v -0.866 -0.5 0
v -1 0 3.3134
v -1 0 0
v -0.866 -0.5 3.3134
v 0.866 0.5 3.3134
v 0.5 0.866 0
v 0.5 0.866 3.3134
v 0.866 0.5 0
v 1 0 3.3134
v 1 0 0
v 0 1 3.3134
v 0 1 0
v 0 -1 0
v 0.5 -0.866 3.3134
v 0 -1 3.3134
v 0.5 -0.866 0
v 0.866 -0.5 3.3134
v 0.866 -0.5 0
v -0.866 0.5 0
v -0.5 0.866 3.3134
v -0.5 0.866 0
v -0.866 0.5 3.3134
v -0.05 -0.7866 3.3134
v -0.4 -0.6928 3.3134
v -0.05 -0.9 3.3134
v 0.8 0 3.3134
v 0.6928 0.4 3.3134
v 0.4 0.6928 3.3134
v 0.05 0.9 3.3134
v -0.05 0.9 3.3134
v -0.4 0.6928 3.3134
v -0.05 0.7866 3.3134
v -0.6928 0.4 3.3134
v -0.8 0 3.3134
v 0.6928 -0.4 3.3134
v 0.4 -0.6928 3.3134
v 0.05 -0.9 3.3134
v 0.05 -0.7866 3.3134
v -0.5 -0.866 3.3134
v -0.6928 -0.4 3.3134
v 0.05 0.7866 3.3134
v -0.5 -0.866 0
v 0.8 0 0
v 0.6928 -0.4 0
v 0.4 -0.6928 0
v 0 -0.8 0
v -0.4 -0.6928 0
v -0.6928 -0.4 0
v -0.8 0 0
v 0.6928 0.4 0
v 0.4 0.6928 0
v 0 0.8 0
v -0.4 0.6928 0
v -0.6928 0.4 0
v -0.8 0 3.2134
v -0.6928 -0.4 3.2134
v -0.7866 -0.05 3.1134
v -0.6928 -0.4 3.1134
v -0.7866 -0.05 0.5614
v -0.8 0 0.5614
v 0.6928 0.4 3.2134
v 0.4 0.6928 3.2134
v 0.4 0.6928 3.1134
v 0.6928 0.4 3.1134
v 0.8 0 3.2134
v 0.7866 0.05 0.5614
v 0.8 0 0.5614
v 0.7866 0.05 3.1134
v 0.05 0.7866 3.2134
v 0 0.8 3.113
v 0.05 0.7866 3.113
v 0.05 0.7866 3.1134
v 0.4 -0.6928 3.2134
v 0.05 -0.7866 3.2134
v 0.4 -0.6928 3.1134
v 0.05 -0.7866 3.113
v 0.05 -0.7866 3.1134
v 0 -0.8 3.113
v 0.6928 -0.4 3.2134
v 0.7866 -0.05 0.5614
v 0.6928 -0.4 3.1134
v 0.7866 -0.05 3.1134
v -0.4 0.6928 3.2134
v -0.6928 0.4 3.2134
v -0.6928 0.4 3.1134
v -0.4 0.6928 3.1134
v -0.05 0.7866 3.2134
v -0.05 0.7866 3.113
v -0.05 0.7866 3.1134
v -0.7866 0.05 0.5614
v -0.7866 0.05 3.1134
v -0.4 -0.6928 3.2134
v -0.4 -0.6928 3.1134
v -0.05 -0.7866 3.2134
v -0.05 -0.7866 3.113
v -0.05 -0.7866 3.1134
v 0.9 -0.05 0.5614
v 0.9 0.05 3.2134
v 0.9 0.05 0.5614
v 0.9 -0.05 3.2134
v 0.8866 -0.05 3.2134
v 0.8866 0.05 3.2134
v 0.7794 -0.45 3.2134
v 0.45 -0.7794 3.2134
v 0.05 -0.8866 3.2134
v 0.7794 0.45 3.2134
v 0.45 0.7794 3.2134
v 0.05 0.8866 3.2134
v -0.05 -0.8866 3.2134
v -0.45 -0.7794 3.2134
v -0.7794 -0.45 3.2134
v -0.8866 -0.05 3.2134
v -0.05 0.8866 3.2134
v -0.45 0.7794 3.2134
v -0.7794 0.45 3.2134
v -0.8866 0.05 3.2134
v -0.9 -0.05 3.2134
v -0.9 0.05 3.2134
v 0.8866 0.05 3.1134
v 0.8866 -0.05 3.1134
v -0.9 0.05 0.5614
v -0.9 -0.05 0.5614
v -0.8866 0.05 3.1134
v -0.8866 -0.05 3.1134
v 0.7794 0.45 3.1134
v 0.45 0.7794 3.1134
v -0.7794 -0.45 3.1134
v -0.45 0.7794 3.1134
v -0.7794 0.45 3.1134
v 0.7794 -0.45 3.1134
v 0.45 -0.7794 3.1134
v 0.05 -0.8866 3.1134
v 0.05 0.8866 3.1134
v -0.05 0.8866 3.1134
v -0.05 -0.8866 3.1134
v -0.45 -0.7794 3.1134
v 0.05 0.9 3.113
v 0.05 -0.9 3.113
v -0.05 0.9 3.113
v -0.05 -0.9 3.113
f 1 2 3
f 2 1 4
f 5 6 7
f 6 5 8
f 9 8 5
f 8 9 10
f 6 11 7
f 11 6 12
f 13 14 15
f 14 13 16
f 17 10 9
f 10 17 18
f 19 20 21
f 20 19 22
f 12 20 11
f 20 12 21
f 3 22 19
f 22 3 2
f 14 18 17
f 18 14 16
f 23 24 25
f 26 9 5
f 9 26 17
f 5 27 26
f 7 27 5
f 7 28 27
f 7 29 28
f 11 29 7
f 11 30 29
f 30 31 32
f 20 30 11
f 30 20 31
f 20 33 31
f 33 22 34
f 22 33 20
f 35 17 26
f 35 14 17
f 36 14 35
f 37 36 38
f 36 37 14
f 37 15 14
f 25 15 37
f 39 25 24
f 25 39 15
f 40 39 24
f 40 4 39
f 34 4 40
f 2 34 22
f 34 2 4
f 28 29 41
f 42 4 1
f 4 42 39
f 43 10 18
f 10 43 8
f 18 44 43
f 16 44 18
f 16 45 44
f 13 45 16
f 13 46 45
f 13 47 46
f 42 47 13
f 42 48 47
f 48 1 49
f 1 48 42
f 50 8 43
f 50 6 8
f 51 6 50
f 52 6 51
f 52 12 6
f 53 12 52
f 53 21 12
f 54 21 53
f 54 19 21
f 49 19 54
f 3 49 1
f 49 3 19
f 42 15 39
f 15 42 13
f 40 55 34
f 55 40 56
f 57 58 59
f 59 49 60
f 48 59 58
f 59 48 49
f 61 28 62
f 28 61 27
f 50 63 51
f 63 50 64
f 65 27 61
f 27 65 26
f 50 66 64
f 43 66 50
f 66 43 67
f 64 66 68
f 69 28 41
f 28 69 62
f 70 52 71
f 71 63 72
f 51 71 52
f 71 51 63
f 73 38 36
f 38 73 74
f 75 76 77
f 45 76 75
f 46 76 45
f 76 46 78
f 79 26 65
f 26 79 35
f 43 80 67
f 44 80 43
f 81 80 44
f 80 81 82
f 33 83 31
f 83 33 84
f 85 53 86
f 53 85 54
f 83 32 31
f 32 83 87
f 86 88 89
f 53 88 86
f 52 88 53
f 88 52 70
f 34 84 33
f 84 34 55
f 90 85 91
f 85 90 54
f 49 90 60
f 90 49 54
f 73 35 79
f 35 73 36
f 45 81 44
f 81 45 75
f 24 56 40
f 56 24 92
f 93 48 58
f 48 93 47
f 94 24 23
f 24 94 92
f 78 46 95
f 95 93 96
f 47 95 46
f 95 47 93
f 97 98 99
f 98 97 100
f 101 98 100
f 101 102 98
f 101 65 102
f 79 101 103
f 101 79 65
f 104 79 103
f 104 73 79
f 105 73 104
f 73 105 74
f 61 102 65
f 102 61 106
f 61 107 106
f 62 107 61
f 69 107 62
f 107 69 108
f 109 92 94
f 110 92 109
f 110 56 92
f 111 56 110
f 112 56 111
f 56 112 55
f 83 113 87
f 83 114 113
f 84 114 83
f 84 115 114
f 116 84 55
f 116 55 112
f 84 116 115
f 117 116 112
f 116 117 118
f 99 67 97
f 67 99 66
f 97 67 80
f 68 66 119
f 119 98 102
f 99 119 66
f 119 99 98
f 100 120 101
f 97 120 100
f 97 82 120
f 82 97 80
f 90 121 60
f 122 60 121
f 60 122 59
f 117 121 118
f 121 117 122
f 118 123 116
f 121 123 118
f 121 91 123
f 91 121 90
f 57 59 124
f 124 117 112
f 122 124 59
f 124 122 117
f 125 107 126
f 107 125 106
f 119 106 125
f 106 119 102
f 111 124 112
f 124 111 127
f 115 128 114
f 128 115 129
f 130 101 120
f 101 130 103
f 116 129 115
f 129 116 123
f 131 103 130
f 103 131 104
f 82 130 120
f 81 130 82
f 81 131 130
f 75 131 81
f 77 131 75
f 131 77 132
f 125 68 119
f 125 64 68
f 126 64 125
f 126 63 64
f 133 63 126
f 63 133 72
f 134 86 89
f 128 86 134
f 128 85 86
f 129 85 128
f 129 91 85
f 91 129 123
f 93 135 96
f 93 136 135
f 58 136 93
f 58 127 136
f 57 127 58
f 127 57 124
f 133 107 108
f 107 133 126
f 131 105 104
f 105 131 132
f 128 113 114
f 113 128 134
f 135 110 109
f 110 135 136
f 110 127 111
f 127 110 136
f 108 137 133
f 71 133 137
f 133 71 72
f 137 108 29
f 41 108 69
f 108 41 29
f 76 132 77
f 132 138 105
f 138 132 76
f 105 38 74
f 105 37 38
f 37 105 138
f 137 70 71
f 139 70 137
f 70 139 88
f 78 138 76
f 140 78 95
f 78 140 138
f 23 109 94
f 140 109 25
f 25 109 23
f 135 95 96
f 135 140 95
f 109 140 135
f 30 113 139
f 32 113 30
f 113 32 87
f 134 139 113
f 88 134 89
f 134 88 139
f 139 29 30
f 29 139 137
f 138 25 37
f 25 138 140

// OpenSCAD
tolerance=0.075;
hole_radius=0.05;
grid_hole_radius=0.05;
outer_radius=1;
thickness=0.2;
hole_attach_height=0.05;
compressed_height=3.3134;
extended_height=5.8654;
next_hole_radius=0.05;
next_hole_attach_height=0.05;
next_inner=0.8;
hole_twist=89.9964;
//other params
eps = tolerance/100;
rail_attach_height = grid_hole_radius + hole_attach_height;
inner_radius = outer_radius - thickness;
rail_attach_width = rail_attach_height;
fn = 12;
fnh = 6;

module angled_cylinder(angle_deg_y, _h, _r, angle_deg_x = 0) {
    rotate([angle_deg_x, angle_deg_y, 0]) { // Rotate the cylinder 
            cylinder(h = _h, r = _r, center = true, $fn = fnh);
        }
}

module hole(_h) {
    cylinder(h = _h, r = grid_hole_radius, $fn = fnh);
}

//makes circle of holes
module circular_grid(_h, _r, _n) {
    for (i = [0:_n-1]) {
        angle = i * 360 / _n;
        x_pos = _r * cos(angle);
        y_pos = _r * sin(angle);
        translate([x_pos, y_pos, -eps]) {
            hole(_h);
        }
    }
}

//makes grid of holes
module hole_grid(hole_height, grid_h) {
    translate([0,0,hole_height]) {
        difference() {
            //cylinder
            cylinder(h = grid_h, r = (inner_radius + outer_radius)/2, 
                center=false, $fn = fn);
            //holes
            for (i = [0 : grid_hole_radius * 2 + hole_attach_height : inner_radius - grid_hole_radius * 2]) {
                circular_grid(grid_h + eps*2, i, ceil(6.28*i/(grid_hole_radius*4)));
            }
            
        } 
    }
}

module bottom_joint() {
    out_hole_angle = 60;

    //grid of holes
    //hole_grid(hole_radius*2 + hole_attach_height * 2, grid_hole_radius);
   
    difference() {
        //outer cylinder
        cylinder(h=compressed_height, r= outer_radius, $fn = fn);
        
        //shell
        translate([0,0,-eps/2])
        cylinder(h=compressed_height + eps, r= inner_radius, $fn = fn);
        
        //screw holes
//        translate([0,0,hole_attach_height + hole_radius]) 
//        rotate([0,0,hole_twist]){
//            rotate([90,0,0])
//            cylinder(h=outer_radius*2 + eps,r=hole_radius,$fn=fnh,center=true);
//            rotate([0,90,0])
//            cylinder(h=outer_radius*2 + eps,r=hole_radius,$fn=fnh,center=true);
//            
//            
//        }
        
        //space between guide holes and grid
        guide_hole_space = grid_hole_radius;
        //guide holes
//        translate([-grid_hole_radius*cos(out_hole_angle) + inner_radius,0,hole_attach_height*2 + hole_radius*2 + grid_hole_radius + grid_hole_radius*sin(out_hole_angle) + guide_hole_space])
//                rotate([0,out_hole_angle,0])
//                cylinder(h=thickness/sin(out_hole_angle) + grid_hole_radius*2/tan(out_hole_angle), r=grid_hole_radius, $fn = fnh);
//        
//        translate([grid_hole_radius*cos(out_hole_angle) - inner_radius,0,hole_attach_height*2 + hole_radius*2 + grid_hole_radius + grid_hole_radius*sin(out_hole_angle) + guide_hole_space])
//                rotate([0,-out_hole_angle,0])
//                cylinder(h=thickness/sin(out_hole_angle) + grid_hole_radius*2/tan(out_hole_angle), r=grid_hole_radius, $fn = fnh);
        
        //for future reference of minimum joint size
        guide_height = hole_attach_height*2 + hole_radius*2 + grid_hole_radius + grid_hole_radius*2/sin(out_hole_angle) + thickness/tan(out_hole_angle) + guide_hole_space;
        
        //track
        rail_height = rail_attach_height + extended_height - compressed_height;
        translate([inner_radius,0,compressed_height - rail_height/2 - rail_attach_height])
            cube([thickness,rail_attach_width,rail_height],center = true);
        
        translate([-inner_radius,0,compressed_height - rail_height/2 - rail_attach_height])
            cube([thickness,rail_attach_width,rail_height],center = true);
        
        translate([0,0,compressed_height - rail_attach_height*2])
        cylinder(h=rail_attach_height,r=inner_radius + thickness/2,$fn=fn);
        
        //insert to track
        translate([0,0,compressed_height - rail_attach_height])
        cube([rail_attach_width, inner_radius*2 + thickness, rail_attach_height*2 + eps],center=true);
        
        //groove for string to slide through
//        translate([0,0,compressed_height])
//        rotate([0,90,0])
//        cylinder(h=outer_radius*2 + eps, r=grid_hole_radius,center=true, $fn=fnh);
    }
    
}

bottom_joint();
